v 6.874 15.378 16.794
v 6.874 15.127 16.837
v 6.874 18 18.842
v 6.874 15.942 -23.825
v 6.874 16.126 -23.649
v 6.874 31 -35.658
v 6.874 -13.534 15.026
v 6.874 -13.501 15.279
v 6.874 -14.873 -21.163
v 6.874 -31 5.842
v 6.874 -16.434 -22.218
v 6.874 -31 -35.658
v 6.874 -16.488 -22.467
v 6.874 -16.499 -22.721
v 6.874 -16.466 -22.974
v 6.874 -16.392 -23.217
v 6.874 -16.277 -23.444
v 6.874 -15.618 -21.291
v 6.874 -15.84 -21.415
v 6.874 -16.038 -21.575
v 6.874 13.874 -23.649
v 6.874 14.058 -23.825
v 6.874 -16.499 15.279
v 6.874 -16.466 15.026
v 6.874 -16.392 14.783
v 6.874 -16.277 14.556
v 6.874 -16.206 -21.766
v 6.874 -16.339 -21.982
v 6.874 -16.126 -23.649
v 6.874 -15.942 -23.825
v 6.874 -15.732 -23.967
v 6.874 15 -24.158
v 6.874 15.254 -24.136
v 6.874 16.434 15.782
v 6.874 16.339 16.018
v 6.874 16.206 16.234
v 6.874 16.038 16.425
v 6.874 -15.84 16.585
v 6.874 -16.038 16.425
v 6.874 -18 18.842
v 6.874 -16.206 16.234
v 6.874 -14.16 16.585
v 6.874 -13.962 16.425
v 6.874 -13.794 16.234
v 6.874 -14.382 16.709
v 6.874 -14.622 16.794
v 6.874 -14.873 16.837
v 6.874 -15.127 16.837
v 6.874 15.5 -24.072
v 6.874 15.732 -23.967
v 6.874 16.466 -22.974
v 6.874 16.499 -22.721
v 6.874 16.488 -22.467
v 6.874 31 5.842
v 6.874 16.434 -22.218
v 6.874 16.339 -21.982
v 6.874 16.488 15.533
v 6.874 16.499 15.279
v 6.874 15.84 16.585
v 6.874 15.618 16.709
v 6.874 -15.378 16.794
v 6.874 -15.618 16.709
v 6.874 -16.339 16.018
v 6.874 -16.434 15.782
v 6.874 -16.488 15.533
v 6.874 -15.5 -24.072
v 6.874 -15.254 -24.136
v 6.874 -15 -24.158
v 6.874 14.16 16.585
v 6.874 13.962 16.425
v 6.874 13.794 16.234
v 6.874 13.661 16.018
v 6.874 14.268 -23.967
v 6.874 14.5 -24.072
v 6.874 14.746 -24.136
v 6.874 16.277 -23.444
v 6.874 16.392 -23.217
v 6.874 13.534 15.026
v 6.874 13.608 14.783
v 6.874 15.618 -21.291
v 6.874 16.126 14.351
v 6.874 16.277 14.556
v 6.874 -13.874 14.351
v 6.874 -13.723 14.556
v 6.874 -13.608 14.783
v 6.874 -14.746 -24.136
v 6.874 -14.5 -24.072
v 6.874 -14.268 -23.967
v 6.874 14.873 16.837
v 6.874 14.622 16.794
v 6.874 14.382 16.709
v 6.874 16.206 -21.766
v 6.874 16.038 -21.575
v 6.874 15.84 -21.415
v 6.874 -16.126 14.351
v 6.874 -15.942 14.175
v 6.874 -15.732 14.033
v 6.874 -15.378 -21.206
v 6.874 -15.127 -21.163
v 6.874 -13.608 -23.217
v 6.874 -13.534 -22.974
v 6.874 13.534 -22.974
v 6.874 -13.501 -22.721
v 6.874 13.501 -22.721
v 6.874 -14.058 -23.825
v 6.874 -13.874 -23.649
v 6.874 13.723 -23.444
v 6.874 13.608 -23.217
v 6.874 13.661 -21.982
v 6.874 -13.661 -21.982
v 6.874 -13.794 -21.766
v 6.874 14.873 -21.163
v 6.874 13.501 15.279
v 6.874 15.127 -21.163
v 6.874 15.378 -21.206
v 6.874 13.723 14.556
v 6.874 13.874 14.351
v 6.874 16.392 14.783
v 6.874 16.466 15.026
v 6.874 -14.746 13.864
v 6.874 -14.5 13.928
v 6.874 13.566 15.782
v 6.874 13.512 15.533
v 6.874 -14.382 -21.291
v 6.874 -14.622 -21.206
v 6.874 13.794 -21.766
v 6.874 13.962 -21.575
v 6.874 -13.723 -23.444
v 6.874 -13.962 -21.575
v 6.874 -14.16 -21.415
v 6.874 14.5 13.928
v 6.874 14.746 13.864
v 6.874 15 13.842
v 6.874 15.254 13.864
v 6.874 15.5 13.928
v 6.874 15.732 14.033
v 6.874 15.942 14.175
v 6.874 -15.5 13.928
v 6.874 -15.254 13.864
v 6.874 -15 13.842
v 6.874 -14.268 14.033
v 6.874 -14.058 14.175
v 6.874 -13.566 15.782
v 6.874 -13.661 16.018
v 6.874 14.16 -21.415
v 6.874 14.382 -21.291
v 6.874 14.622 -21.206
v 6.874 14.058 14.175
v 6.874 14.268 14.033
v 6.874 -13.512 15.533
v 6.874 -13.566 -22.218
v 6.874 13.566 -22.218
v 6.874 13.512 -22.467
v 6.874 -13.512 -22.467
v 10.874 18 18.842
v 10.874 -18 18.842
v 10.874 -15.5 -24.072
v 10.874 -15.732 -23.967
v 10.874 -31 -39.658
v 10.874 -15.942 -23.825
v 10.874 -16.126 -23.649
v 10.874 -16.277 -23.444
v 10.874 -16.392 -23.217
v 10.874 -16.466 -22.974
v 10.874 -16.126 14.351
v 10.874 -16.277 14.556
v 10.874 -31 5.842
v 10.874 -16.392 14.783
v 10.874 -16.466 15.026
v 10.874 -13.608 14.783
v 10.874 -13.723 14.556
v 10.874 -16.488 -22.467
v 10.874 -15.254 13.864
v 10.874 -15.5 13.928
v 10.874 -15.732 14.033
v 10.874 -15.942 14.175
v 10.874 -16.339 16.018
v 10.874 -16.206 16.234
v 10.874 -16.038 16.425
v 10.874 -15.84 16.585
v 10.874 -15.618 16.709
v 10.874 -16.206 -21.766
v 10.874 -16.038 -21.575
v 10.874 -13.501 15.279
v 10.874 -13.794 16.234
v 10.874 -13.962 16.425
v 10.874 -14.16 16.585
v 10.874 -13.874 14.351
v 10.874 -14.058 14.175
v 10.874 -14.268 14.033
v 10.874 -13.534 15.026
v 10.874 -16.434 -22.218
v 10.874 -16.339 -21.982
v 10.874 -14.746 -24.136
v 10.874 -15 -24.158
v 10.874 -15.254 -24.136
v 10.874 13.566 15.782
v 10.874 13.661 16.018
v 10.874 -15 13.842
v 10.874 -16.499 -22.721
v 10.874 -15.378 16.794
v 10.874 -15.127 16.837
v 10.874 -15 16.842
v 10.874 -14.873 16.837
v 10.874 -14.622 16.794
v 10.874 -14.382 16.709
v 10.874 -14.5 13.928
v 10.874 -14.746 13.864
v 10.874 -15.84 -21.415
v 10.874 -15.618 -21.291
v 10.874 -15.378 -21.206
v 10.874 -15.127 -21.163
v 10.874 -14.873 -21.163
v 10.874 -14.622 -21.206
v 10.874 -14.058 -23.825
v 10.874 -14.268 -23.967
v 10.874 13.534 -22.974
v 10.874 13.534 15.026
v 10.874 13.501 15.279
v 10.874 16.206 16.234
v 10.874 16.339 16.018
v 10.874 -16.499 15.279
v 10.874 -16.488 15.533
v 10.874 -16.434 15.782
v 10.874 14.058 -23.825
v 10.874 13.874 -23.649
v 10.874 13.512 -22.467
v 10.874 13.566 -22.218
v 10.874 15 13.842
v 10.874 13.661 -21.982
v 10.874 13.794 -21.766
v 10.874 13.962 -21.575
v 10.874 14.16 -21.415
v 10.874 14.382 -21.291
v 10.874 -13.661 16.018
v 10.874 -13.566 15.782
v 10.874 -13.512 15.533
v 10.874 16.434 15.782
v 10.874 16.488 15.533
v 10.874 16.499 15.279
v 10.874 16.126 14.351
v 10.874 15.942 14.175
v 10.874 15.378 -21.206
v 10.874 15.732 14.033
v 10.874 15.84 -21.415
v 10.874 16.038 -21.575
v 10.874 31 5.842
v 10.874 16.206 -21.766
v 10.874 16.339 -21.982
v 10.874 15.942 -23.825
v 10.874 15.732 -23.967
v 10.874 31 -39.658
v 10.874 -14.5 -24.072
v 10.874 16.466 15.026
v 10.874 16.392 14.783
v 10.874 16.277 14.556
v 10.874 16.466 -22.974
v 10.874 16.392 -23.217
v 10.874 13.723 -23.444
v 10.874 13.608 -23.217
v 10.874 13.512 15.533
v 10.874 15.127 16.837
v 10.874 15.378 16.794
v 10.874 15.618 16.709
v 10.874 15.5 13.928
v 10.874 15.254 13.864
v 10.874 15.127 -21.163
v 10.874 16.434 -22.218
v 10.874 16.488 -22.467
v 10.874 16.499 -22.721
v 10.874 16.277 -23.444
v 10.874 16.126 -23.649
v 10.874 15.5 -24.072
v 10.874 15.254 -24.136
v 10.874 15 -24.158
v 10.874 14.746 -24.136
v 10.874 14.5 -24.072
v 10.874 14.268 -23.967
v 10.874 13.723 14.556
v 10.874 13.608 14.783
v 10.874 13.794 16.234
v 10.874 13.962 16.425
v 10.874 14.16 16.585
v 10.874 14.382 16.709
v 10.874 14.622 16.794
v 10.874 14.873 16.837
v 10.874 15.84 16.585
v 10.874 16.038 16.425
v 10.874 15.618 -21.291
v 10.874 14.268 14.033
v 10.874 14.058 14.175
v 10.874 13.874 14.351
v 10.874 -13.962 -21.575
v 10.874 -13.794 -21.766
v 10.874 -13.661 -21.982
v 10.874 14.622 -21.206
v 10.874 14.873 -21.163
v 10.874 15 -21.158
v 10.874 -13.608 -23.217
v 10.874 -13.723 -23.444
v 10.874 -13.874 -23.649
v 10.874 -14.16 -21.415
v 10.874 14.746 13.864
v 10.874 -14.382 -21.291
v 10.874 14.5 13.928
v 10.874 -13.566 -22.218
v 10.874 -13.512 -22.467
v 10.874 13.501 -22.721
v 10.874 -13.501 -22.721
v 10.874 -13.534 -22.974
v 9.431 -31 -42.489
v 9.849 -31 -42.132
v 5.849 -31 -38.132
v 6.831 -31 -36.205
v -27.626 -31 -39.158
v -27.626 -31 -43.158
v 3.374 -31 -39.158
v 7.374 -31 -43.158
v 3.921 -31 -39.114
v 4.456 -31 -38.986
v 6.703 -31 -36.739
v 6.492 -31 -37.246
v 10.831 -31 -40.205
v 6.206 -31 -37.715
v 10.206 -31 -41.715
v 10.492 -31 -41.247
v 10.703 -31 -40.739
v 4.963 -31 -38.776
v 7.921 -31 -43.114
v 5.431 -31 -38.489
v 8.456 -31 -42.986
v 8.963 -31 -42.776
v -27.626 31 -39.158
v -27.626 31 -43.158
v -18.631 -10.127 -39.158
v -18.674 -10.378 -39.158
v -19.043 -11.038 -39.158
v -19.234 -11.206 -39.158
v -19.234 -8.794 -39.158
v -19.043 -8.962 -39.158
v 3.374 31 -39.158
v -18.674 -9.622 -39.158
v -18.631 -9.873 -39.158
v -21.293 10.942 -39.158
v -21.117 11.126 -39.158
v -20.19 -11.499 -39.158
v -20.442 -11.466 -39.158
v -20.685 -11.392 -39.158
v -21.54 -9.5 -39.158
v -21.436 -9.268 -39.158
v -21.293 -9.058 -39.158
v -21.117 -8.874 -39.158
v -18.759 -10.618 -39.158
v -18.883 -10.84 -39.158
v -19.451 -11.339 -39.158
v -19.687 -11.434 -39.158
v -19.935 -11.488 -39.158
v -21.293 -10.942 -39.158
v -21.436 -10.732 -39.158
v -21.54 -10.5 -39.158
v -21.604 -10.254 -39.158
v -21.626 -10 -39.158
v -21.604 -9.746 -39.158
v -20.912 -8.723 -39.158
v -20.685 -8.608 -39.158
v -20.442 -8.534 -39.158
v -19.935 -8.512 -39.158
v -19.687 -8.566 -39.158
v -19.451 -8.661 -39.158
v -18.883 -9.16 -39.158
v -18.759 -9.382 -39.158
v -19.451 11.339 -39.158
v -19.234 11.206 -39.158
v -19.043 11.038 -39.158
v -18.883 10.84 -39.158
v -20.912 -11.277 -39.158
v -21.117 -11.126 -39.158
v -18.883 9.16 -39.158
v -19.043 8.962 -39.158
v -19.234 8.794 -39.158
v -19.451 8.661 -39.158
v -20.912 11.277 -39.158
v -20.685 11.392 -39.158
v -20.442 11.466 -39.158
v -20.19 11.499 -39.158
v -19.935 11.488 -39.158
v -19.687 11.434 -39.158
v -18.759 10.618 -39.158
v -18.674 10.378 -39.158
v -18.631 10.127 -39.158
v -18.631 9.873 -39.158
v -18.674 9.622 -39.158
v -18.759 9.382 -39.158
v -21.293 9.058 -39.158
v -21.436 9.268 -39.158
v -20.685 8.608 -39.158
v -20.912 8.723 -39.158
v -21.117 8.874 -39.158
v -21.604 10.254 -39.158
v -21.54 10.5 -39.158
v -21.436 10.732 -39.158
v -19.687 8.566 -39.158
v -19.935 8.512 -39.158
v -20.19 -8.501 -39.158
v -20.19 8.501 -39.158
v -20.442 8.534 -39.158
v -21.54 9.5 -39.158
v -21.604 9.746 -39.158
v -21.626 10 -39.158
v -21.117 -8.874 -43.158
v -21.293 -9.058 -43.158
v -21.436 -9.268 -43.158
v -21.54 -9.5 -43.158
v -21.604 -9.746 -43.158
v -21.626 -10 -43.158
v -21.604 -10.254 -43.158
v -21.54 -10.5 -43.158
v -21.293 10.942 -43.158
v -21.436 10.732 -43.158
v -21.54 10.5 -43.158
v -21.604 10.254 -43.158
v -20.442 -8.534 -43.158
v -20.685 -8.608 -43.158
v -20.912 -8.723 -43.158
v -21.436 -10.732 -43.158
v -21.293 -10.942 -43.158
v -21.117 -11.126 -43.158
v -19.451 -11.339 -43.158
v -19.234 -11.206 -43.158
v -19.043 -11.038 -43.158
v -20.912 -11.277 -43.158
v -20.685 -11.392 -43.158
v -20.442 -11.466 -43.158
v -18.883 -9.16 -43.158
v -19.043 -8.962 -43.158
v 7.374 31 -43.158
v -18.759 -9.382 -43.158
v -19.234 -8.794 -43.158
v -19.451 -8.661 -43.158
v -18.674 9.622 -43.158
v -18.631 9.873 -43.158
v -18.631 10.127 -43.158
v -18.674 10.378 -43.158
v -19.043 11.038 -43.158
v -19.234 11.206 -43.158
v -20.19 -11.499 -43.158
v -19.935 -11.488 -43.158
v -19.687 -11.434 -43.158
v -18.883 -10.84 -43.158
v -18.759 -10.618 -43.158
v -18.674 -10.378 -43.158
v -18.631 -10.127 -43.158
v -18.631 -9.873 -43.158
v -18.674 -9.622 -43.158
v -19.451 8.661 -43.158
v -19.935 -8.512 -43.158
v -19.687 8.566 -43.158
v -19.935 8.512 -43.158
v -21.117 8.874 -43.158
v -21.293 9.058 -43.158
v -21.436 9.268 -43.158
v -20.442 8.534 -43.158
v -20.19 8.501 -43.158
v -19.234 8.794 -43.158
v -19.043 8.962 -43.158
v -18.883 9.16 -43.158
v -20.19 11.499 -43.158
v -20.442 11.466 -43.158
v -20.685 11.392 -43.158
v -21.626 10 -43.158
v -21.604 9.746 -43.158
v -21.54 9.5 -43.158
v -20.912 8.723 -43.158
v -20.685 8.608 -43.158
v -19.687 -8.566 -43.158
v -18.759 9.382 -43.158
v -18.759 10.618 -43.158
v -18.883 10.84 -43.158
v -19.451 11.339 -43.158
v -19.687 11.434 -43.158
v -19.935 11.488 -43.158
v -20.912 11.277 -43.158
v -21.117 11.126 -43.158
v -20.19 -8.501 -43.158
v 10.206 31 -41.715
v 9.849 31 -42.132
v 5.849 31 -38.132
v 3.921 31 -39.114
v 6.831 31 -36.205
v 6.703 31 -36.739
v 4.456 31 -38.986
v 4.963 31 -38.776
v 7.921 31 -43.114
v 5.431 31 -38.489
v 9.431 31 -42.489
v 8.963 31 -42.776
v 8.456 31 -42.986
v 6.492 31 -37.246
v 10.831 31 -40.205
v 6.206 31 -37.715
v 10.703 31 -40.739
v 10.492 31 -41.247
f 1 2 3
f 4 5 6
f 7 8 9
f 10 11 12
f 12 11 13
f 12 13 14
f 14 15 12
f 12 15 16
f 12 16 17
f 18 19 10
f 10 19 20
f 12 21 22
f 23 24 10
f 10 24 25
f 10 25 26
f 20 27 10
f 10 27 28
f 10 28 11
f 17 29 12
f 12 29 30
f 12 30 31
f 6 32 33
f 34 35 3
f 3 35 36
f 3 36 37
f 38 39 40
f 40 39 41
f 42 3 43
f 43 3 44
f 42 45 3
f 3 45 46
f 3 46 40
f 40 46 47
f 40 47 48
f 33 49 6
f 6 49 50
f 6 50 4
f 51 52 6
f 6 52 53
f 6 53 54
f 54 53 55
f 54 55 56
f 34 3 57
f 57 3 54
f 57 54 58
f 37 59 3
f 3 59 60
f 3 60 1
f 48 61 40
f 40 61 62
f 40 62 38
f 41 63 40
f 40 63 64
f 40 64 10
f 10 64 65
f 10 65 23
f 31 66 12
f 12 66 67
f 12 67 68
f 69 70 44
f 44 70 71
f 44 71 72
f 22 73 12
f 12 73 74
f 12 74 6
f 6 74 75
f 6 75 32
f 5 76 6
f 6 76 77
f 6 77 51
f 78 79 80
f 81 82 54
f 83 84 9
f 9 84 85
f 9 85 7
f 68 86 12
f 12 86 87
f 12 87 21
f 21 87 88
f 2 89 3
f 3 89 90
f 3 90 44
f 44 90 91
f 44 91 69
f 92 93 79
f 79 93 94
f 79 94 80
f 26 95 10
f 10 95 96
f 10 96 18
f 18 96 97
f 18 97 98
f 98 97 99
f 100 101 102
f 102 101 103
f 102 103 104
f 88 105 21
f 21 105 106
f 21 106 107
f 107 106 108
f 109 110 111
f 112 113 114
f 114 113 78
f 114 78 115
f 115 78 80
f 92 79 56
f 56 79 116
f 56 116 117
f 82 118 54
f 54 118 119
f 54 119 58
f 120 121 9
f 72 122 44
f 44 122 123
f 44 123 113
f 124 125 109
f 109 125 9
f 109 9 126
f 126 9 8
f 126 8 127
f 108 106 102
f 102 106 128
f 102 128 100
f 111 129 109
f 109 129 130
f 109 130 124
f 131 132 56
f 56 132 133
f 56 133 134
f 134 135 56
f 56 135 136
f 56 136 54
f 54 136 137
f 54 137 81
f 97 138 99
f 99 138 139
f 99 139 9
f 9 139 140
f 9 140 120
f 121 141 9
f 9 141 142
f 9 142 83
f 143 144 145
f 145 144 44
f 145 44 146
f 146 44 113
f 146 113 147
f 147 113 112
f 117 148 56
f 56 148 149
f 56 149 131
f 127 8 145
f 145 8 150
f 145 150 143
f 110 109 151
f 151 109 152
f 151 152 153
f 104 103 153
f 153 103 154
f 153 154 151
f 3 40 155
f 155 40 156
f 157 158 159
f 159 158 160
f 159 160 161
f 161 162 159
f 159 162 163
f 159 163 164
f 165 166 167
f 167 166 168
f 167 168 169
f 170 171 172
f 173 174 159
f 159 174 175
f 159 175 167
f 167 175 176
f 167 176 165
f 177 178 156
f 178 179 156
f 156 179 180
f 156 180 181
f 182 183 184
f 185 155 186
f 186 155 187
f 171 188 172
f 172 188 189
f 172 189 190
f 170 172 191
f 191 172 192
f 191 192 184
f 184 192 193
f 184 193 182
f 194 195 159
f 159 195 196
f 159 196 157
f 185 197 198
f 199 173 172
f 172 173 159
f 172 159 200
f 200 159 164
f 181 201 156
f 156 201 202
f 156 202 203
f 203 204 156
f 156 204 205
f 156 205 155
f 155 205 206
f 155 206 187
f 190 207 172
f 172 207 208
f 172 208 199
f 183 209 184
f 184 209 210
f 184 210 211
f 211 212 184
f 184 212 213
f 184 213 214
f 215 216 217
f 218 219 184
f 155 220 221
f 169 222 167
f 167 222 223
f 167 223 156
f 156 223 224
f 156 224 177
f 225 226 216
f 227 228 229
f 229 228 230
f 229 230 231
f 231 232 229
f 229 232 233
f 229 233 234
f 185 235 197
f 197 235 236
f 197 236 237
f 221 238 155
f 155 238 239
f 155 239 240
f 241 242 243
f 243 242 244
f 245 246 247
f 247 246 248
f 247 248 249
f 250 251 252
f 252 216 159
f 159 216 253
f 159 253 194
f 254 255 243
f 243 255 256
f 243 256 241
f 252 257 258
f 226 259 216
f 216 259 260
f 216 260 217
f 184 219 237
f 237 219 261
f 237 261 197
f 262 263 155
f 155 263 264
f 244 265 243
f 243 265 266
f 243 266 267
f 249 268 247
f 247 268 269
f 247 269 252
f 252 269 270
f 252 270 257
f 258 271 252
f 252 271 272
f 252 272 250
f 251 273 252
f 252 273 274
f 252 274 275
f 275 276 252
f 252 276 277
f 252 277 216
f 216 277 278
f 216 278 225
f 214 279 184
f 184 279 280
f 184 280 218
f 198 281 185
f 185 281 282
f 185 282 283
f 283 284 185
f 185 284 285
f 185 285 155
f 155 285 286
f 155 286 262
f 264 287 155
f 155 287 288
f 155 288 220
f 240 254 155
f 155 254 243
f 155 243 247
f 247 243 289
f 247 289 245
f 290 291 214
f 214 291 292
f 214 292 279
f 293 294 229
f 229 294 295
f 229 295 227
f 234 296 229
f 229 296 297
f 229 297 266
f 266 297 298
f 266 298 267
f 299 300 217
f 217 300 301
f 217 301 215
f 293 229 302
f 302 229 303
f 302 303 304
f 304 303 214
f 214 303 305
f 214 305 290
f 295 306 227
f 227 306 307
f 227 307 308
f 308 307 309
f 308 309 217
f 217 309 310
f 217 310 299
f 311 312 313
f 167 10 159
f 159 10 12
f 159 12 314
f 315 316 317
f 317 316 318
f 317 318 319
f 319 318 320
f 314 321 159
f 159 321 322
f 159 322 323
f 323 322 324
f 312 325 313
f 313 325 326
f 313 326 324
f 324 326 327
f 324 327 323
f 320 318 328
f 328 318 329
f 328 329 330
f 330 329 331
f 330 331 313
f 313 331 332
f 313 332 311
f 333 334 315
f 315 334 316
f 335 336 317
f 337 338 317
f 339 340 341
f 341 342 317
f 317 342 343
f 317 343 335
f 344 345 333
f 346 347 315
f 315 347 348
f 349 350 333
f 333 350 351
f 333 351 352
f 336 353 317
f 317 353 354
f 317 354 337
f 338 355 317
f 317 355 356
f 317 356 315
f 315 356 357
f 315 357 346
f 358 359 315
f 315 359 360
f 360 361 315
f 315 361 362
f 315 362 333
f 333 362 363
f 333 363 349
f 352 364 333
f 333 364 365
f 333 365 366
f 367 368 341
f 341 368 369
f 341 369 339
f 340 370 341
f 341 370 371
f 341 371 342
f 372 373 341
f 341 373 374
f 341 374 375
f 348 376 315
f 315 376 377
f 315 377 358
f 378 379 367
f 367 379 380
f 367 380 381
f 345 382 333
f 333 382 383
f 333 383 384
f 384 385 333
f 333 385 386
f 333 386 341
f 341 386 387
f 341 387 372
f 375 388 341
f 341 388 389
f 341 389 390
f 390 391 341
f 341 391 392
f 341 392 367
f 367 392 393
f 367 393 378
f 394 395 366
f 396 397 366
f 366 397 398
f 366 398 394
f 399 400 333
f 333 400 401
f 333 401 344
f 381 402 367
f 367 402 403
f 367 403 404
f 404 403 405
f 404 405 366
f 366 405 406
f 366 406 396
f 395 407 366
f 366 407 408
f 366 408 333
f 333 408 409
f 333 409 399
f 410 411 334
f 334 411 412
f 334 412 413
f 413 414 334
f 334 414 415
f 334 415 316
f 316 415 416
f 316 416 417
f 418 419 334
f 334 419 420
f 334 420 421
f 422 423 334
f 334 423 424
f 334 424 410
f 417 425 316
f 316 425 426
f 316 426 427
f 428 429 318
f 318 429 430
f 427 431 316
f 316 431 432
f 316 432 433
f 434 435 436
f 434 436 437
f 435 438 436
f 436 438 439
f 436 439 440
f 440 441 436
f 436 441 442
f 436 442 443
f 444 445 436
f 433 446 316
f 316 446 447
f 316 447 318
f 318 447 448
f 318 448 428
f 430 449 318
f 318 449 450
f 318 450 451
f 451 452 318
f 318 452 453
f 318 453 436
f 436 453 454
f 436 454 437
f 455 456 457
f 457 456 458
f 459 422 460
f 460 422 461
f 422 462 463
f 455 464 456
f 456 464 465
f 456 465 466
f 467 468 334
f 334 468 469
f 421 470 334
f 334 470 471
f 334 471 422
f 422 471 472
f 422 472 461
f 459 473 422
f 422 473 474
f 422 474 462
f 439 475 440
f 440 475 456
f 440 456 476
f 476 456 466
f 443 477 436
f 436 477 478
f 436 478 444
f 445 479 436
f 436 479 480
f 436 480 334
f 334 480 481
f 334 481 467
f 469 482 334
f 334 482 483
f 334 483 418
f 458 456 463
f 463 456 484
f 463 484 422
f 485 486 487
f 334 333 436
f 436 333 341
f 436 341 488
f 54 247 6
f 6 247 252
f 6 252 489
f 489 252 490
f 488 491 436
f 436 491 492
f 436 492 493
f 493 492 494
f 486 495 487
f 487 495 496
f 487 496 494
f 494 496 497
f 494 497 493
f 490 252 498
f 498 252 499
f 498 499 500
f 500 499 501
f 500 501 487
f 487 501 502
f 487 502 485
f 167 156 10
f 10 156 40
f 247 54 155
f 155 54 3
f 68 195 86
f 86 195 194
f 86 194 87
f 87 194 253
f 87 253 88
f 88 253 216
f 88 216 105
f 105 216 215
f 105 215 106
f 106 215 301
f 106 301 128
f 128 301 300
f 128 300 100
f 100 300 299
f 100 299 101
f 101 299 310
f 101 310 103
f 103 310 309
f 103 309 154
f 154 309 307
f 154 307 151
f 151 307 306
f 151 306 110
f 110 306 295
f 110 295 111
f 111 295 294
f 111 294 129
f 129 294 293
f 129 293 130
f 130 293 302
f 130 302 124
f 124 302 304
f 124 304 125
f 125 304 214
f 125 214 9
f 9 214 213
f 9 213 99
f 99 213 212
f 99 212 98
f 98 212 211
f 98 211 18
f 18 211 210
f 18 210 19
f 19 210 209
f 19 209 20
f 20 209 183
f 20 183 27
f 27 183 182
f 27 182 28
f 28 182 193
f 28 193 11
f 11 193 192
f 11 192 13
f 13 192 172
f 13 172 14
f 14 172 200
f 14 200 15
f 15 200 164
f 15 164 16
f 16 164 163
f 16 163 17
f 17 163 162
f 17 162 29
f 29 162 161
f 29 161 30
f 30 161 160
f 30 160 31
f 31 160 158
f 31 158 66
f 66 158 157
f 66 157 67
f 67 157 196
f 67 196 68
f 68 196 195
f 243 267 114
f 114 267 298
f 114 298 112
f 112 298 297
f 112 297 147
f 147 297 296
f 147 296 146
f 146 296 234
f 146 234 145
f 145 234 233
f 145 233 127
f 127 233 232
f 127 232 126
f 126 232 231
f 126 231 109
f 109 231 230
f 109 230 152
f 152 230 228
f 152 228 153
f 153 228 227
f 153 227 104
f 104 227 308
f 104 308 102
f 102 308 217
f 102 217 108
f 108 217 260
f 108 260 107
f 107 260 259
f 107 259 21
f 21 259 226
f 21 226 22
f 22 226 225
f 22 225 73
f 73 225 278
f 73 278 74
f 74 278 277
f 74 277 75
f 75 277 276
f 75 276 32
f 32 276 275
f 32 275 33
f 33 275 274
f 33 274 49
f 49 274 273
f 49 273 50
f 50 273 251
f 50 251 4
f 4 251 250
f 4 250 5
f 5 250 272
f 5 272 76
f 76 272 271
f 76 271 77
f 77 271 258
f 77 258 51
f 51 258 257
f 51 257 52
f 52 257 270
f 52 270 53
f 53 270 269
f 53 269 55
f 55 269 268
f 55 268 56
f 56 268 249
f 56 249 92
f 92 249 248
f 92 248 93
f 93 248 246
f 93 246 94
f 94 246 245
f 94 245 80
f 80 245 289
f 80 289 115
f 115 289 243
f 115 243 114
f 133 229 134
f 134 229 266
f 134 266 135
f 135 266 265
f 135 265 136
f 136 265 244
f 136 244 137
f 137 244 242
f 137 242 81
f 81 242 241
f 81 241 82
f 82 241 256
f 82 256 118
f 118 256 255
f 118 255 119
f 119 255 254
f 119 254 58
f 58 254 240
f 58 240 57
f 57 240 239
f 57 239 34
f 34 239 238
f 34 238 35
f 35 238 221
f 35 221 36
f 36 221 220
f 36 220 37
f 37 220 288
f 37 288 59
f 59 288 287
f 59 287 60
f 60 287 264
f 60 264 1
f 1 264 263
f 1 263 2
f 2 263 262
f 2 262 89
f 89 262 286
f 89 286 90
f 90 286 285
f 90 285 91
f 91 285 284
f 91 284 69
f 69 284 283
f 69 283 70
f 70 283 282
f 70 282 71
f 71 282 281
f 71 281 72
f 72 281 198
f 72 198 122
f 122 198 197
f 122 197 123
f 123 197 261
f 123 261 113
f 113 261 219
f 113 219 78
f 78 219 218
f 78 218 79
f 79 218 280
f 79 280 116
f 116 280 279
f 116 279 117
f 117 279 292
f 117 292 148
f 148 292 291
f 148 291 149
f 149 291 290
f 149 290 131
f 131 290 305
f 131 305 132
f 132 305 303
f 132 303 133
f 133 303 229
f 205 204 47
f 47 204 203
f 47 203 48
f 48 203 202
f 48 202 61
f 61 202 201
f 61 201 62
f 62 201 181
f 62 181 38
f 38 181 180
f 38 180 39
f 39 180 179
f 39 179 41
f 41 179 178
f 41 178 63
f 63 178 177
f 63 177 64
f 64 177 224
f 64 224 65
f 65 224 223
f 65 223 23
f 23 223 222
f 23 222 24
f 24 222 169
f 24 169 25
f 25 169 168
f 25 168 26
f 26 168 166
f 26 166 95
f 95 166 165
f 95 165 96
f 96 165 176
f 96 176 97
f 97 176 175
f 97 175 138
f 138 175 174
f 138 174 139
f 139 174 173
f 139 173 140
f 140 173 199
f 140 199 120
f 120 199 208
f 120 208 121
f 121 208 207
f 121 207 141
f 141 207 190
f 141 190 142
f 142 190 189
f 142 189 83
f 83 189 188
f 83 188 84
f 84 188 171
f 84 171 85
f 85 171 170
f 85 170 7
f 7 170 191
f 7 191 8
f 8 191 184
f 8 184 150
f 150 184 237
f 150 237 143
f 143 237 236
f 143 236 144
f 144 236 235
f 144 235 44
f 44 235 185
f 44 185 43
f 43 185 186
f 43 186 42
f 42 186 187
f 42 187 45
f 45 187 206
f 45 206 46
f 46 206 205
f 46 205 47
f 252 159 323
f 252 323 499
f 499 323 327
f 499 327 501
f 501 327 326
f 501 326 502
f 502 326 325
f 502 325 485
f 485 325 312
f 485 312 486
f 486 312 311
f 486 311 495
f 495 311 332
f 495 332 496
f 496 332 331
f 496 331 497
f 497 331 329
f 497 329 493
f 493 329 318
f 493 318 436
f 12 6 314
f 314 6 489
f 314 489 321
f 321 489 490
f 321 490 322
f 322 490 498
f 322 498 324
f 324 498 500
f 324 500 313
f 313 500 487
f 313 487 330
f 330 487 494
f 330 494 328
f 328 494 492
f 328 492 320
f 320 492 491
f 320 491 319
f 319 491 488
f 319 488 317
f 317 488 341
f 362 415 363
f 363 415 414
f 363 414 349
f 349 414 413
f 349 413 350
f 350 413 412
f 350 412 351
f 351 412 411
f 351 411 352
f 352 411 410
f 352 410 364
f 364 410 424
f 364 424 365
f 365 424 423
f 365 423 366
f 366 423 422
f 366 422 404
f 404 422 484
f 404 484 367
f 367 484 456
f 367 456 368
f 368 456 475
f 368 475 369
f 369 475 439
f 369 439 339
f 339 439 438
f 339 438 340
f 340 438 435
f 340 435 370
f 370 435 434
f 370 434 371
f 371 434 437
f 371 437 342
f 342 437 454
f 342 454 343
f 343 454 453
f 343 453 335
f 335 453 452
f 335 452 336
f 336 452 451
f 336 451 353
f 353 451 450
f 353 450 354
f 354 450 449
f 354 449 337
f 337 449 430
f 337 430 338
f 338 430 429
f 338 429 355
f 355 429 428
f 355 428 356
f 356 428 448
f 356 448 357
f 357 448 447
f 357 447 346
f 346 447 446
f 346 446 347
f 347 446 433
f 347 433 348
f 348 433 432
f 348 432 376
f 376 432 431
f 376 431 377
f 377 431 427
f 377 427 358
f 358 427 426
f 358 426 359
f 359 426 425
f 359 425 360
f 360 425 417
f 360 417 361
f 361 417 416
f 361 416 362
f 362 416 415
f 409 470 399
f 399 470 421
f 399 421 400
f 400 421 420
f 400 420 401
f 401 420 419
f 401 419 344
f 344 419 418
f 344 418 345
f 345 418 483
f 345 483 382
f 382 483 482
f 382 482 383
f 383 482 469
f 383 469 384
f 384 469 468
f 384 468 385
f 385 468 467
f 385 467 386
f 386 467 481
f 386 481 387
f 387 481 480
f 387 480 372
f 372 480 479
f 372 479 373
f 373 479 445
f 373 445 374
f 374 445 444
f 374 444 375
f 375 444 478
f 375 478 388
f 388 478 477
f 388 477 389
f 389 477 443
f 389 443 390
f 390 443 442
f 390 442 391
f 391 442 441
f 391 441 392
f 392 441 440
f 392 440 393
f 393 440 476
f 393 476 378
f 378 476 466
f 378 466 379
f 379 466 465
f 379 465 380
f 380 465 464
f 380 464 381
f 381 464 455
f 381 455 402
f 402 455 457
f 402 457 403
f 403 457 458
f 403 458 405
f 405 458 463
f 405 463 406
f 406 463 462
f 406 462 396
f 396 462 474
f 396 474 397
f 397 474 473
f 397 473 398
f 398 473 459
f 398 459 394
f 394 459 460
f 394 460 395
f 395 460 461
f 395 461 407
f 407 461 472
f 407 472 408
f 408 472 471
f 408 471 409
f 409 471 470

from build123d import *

# Parameters (mm, degrees)
EXTRUDE_1_DEPTH     = 31
SKETCH_2_R          = 1.5
CUT_EXTRUDE_2_DEPTH = 10
FILLET_1_R          = 3.5
FILLET_2_R          = 3.5
SKETCH_7_R          = 1.5
CUT_EXTRUDE_4_DEPTH = 10


with BuildPart() as part:
    # 草图1 → 凸台-拉伸1 (new, symmetric)
    with BuildSketch(Plane(origin=(0, 0, 0), x_dir=(1, 0, 0), z_dir=(0, 1, 0))):
        Polygon((-27.626027397, 43.157534247), (10.873972603, 43.157534247), (10.873972603, -18.842465753), (6.873972603, -18.842465753), (6.873972603, 39.157534247), (-27.626027397, 39.157534247), align=None)
    extrude(amount=EXTRUDE_1_DEPTH, both=True)

    # 草图2 → 切除-拉伸2 (cut)
    with BuildSketch(Plane(origin=(10.873972603, 0, 0), x_dir=(0, 0, -1), z_dir=(1, 0, 0))):
        Polygon((-5.842465753, 31), (-18.842465753, 31), (-18.842465753, 18), align=None)
        with Locations((22.657534247, -15)):
            Circle(SKETCH_2_R)
        Polygon((-5.842465753, -31), (-18.842465753, -18), (-18.842465753, -31), align=None)
        with Locations((22.657534247, 15)):
            Circle(SKETCH_2_R)
        with Locations((-15.342465753, 15)):
            Circle(SKETCH_2_R)
        with Locations((-15.342465753, -15)):
            Circle(SKETCH_2_R)
    extrude(amount=-CUT_EXTRUDE_2_DEPTH, mode=Mode.SUBTRACT)

    # 圆角1
    fillet_1_edges = [part.edges().sort_by_distance(p)[0] for p in [
        (10.873972603, 0, -43.157534247),
    ]]
    fillet(fillet_1_edges, radius=FILLET_1_R)

    # 圆角2
    fillet_2_edges = [part.edges().sort_by_distance(p)[0] for p in [
        (6.873972603, 0, -39.157534247),
    ]]
    fillet(fillet_2_edges, radius=FILLET_2_R)

    # 草图7 → 切除-拉伸4 (cut)
    with BuildSketch(Plane(origin=(0, 0, -43.157534247), x_dir=(-1, 0, 0), z_dir=(0, 0, -1))):
        with Locations((20.126027397, 10)):
            Circle(SKETCH_7_R)
        with Locations((20.126027397, -10)):
            Circle(SKETCH_7_R)
    extrude(amount=-CUT_EXTRUDE_4_DEPTH, mode=Mode.SUBTRACT)


solid = part.part
